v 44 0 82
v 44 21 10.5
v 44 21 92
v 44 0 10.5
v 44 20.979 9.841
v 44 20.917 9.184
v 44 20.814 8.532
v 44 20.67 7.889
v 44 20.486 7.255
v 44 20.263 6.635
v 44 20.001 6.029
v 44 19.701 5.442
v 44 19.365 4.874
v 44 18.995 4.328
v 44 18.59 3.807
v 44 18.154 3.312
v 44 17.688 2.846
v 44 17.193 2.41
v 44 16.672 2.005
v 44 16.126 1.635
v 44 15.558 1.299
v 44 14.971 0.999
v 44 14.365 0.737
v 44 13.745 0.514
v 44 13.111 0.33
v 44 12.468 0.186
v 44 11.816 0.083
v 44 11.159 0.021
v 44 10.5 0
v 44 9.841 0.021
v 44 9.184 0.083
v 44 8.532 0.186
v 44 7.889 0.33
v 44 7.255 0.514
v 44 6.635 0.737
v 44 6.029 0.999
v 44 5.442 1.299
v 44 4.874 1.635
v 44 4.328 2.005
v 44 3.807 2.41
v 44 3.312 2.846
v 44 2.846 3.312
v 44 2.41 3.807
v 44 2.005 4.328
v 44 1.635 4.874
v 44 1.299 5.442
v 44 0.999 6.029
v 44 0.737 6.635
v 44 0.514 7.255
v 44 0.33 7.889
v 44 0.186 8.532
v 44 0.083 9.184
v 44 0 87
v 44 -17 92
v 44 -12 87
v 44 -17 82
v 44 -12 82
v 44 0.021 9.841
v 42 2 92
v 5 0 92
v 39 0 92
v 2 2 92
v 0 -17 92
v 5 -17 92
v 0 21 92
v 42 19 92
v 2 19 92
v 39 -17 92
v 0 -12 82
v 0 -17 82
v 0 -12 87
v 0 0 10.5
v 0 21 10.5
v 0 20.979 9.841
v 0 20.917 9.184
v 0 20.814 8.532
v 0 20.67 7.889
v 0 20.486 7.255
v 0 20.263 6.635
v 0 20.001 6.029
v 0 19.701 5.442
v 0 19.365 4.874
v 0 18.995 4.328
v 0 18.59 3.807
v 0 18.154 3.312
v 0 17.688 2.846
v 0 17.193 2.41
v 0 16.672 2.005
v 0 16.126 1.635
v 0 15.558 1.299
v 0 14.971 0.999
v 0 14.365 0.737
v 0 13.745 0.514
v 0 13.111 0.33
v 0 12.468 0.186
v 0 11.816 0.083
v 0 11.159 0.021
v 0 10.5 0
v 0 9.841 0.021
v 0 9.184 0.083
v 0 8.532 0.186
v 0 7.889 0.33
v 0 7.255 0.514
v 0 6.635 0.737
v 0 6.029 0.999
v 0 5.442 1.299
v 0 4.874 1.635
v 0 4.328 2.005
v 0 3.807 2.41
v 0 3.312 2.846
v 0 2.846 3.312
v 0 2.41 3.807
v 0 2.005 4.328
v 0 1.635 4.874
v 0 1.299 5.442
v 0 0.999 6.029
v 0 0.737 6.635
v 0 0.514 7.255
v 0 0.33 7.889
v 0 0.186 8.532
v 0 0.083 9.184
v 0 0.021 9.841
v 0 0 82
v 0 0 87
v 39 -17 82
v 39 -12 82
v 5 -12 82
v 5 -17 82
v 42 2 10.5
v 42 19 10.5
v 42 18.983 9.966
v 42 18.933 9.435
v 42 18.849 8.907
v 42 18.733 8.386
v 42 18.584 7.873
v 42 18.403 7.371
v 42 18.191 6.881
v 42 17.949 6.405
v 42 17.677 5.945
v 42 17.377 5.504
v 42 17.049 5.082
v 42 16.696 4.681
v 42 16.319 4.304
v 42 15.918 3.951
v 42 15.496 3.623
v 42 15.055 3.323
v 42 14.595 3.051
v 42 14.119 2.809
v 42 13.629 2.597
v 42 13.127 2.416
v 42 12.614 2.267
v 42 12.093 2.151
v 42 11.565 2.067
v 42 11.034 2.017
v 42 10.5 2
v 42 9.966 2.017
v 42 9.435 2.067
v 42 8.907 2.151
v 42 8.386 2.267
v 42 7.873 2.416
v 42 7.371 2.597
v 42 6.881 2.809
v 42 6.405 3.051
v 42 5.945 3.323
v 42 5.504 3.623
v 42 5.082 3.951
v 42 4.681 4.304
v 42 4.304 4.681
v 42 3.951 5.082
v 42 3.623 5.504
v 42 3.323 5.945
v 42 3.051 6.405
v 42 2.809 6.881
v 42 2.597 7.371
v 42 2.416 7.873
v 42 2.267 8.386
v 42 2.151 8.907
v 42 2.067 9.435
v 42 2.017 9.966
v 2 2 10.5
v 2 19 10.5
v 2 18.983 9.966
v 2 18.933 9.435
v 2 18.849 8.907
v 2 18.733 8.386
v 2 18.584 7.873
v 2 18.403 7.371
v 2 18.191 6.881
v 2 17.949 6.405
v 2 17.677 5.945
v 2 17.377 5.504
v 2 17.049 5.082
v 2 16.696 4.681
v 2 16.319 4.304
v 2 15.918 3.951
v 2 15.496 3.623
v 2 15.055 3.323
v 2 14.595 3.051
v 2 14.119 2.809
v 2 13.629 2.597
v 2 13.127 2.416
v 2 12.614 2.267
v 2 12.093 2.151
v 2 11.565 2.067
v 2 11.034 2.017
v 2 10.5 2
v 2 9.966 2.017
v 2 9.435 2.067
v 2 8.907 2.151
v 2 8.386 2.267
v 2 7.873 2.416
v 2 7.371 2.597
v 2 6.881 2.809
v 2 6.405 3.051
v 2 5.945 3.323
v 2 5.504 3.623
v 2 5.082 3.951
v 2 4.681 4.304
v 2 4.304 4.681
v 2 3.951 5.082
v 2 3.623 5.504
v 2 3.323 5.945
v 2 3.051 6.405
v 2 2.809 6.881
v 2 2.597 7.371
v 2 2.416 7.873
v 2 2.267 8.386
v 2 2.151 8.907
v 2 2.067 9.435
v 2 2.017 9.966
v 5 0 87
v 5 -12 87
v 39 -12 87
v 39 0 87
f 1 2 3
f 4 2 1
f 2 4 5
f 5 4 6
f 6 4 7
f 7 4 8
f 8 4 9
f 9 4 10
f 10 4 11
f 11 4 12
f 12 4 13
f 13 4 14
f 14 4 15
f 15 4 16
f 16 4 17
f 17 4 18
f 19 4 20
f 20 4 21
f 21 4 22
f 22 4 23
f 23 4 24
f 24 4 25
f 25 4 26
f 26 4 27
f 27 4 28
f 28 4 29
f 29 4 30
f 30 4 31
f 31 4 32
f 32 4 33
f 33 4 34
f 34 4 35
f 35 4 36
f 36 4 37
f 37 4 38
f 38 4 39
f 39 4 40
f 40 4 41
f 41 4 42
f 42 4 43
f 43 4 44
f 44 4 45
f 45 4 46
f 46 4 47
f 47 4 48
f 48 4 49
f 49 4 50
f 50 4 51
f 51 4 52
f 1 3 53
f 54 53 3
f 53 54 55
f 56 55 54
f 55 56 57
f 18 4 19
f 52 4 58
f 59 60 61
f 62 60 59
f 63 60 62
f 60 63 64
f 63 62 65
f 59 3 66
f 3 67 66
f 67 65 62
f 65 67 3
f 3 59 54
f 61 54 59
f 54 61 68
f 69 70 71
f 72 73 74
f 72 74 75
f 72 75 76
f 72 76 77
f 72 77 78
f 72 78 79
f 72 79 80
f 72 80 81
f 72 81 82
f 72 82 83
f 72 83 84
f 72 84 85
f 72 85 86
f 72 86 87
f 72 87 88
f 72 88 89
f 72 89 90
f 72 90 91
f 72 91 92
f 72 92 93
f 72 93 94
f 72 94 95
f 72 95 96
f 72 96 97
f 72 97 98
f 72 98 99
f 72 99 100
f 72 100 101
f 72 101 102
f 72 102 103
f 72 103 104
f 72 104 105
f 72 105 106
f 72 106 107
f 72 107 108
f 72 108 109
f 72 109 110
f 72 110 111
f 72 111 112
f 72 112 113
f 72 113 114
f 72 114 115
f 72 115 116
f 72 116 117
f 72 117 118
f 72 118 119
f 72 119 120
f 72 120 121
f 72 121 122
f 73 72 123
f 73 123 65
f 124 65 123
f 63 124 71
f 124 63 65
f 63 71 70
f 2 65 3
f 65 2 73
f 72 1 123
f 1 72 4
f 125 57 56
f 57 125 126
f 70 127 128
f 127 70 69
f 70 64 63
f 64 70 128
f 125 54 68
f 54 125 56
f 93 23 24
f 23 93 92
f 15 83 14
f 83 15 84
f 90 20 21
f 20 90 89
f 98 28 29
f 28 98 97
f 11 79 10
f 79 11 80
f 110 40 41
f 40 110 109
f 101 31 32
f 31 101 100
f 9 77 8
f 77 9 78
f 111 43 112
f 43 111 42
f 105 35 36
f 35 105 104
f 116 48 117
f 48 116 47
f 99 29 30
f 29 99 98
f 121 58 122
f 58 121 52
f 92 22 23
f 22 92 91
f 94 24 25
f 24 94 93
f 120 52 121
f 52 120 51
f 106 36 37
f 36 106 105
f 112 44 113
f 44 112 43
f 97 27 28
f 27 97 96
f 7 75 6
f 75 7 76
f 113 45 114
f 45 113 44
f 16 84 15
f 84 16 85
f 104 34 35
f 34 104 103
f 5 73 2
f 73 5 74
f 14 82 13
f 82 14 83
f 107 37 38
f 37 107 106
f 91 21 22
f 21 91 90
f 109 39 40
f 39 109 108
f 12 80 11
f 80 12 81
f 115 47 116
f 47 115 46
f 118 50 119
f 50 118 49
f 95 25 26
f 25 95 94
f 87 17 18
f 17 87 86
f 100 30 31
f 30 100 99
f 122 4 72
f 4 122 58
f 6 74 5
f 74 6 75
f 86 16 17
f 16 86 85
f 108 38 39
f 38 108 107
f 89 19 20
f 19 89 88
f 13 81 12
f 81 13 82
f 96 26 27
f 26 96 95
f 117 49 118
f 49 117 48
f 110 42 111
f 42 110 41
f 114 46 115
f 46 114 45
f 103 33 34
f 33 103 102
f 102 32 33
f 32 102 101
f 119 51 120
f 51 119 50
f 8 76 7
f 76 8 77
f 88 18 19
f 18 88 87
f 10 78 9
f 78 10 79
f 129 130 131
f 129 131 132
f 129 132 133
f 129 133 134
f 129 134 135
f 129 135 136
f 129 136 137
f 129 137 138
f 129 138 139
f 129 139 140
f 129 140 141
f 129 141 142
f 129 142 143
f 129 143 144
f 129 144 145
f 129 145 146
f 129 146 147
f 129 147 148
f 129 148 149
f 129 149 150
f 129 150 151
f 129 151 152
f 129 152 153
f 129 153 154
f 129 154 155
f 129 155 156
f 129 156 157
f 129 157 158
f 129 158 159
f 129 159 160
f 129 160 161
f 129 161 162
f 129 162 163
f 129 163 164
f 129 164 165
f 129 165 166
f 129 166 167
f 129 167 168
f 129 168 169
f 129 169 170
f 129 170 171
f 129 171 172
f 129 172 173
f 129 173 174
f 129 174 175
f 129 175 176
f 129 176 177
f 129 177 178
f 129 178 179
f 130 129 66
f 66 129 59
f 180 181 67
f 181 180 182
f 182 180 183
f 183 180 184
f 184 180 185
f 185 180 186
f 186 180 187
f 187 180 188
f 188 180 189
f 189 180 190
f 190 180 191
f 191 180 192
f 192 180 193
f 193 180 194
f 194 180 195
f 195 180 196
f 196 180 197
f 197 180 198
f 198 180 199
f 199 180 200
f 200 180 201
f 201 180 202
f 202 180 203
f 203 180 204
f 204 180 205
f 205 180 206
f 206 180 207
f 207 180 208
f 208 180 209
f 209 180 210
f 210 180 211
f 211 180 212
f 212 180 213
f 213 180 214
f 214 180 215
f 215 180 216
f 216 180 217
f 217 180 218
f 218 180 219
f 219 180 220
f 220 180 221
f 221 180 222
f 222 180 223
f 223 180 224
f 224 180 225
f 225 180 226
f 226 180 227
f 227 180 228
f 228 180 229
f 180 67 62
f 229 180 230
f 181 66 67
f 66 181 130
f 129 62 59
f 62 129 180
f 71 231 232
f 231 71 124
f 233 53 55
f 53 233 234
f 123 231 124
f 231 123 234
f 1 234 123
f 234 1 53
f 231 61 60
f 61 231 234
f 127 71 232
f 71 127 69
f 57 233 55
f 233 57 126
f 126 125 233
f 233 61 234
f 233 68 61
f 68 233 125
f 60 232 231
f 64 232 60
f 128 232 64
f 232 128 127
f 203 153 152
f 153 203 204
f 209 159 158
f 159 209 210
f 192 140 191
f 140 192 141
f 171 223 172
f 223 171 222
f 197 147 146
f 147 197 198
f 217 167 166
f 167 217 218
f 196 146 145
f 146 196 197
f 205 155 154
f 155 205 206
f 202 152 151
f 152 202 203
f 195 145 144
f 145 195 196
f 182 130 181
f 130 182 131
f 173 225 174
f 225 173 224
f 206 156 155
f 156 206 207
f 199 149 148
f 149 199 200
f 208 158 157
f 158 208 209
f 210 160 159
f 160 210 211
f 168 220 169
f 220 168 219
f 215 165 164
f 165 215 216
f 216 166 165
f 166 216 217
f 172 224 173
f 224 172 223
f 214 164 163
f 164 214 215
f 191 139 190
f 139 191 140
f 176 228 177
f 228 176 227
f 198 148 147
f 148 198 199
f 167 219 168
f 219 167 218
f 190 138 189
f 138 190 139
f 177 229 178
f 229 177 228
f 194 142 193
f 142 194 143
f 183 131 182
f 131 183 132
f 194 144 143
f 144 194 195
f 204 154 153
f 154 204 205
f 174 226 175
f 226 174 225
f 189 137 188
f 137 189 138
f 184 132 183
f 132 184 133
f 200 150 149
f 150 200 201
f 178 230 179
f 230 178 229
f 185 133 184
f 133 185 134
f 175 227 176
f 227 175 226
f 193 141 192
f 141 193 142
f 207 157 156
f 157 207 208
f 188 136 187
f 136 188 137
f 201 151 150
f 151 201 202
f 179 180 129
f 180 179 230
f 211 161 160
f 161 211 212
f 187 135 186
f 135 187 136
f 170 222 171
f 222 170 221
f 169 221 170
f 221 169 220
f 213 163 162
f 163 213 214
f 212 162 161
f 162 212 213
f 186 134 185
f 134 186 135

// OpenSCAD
//
// ktRACK96
//
//

gap1 = 0.001;
gap2 = 0.003;
th = 2;




base();


module base()
{
difference()
{

    union()
    {
        translate([0, 0, (17+th*2)/2]) cube([40+th*2, 17+th*2, 90+th-(17+th*2)/2]);
        translate([0, -(10+7), (90+th)-(5+5)]) cube([40+th*2, 10+7, 5+5]);
        translate([0, (17+th*2)/2, (17+th*2)/2]) rotate([0, 90, 0]) cylinder(h=40+th*2, r=(17+th*2)/2, $fn=100);
    }
    translate([th, th, (17+th*2)/2]) cube([40, 17, 90+th-(17+th*2)/2]);
    translate([0, -(5+7), (90+th)-5-5]) cube([40+th*2, 5+7, 5]);
    translate([5, -(10+7), (90+th)-(5+5)]) cube([40+th*2-(5*2), 10+7, 5+5]);
    translate([th, (17+th*2)/2, (17)/2+th]) rotate([0, 90, 0]) cylinder(h=40, r=(17)/2, $fn=100);
}
}




module base2()
{
difference()
{

    union()
    {
        translate([-(16.8+3)/2+1, -6, 10]) rotate([180, 0, 180-(55+8.4)]) cube([17.8, 4, 10]);
        translate([-13.1-1.5, 2+9.2, 0]) cylinder(h=10, r=(3+2)/2, $fn=100);
        translate([-(16.8+3)/2, 0, 10]) rotate([180, 0, 180-55]) cube([11-1, 5, 10]);
        translate([-(16.8+3)/2, 0, 0]) cube([16.8+3, 5, 10]);
        translate([ (16.8+3)/2, 0, 0]) rotate([0, 0, 55]) cube([11-1, 5, 10]);
        translate([13.1+1.5, 2+9.2, 0]) cylinder(h=10, r=(3+2.2)/2, $fn=100);
        translate([ (16.8+3)/2-1, -6, 0]) rotate([0, 0, 55+8.4]) cube([17.8, 4, 10]);

        translate([-18/2, -10/2, 10/2]) rotate([0, 90, 0]) cylinder(h=18, r=10/2, $fn=100);
        translate([-18/2, -5, 0]) cube([18, 5, 10]);
        translate([-18/2, -10, 0]) cube([18, 10, 5]);

    }
    translate([0, 0, 0]) cover();
    
    #translate([-(18+15)/2, -10/2, -18/2+1]) rotate([0, 90, 0]) cylinder(h=18+15, r=18/2, $fn=100);

    #translate([ (16.8+3)/2-2, 0, -3]) rotate([20, -40, 0]) cube([4, 2, 30]);
}
}

module cover()
{
difference()
{

    union()
    {
        translate([-(16.8+3)/2, 2, 17]) rotate([180, 0, 180-55]) cube([11-2, 2+10, 17]);
        translate([-(16.8+3)/2, 2, 17]) rotate([180, 0, 180-55]) cube([11, 2, 17]);
        translate([-(16.8+3)/2, 2, 0]) cube([16.8+3, 2+10, 17]);
        translate([ (16.8+3)/2, 2, 0]) rotate([0, 0, 55]) cube([11, 2, 17]);
        translate([ (16.8+3)/2, 2, 0]) rotate([0, 0, 55]) cube([11-2, 2+10, 17]);

        translate([-13.1-1.5, 2+9.2, 0]) cylinder(h=17, r=3/2, $fn=100);
        translate([13.1+1.5, 2+9.2, 0]) cylinder(h=17, r=3/2, $fn=100);
    }

}
}
